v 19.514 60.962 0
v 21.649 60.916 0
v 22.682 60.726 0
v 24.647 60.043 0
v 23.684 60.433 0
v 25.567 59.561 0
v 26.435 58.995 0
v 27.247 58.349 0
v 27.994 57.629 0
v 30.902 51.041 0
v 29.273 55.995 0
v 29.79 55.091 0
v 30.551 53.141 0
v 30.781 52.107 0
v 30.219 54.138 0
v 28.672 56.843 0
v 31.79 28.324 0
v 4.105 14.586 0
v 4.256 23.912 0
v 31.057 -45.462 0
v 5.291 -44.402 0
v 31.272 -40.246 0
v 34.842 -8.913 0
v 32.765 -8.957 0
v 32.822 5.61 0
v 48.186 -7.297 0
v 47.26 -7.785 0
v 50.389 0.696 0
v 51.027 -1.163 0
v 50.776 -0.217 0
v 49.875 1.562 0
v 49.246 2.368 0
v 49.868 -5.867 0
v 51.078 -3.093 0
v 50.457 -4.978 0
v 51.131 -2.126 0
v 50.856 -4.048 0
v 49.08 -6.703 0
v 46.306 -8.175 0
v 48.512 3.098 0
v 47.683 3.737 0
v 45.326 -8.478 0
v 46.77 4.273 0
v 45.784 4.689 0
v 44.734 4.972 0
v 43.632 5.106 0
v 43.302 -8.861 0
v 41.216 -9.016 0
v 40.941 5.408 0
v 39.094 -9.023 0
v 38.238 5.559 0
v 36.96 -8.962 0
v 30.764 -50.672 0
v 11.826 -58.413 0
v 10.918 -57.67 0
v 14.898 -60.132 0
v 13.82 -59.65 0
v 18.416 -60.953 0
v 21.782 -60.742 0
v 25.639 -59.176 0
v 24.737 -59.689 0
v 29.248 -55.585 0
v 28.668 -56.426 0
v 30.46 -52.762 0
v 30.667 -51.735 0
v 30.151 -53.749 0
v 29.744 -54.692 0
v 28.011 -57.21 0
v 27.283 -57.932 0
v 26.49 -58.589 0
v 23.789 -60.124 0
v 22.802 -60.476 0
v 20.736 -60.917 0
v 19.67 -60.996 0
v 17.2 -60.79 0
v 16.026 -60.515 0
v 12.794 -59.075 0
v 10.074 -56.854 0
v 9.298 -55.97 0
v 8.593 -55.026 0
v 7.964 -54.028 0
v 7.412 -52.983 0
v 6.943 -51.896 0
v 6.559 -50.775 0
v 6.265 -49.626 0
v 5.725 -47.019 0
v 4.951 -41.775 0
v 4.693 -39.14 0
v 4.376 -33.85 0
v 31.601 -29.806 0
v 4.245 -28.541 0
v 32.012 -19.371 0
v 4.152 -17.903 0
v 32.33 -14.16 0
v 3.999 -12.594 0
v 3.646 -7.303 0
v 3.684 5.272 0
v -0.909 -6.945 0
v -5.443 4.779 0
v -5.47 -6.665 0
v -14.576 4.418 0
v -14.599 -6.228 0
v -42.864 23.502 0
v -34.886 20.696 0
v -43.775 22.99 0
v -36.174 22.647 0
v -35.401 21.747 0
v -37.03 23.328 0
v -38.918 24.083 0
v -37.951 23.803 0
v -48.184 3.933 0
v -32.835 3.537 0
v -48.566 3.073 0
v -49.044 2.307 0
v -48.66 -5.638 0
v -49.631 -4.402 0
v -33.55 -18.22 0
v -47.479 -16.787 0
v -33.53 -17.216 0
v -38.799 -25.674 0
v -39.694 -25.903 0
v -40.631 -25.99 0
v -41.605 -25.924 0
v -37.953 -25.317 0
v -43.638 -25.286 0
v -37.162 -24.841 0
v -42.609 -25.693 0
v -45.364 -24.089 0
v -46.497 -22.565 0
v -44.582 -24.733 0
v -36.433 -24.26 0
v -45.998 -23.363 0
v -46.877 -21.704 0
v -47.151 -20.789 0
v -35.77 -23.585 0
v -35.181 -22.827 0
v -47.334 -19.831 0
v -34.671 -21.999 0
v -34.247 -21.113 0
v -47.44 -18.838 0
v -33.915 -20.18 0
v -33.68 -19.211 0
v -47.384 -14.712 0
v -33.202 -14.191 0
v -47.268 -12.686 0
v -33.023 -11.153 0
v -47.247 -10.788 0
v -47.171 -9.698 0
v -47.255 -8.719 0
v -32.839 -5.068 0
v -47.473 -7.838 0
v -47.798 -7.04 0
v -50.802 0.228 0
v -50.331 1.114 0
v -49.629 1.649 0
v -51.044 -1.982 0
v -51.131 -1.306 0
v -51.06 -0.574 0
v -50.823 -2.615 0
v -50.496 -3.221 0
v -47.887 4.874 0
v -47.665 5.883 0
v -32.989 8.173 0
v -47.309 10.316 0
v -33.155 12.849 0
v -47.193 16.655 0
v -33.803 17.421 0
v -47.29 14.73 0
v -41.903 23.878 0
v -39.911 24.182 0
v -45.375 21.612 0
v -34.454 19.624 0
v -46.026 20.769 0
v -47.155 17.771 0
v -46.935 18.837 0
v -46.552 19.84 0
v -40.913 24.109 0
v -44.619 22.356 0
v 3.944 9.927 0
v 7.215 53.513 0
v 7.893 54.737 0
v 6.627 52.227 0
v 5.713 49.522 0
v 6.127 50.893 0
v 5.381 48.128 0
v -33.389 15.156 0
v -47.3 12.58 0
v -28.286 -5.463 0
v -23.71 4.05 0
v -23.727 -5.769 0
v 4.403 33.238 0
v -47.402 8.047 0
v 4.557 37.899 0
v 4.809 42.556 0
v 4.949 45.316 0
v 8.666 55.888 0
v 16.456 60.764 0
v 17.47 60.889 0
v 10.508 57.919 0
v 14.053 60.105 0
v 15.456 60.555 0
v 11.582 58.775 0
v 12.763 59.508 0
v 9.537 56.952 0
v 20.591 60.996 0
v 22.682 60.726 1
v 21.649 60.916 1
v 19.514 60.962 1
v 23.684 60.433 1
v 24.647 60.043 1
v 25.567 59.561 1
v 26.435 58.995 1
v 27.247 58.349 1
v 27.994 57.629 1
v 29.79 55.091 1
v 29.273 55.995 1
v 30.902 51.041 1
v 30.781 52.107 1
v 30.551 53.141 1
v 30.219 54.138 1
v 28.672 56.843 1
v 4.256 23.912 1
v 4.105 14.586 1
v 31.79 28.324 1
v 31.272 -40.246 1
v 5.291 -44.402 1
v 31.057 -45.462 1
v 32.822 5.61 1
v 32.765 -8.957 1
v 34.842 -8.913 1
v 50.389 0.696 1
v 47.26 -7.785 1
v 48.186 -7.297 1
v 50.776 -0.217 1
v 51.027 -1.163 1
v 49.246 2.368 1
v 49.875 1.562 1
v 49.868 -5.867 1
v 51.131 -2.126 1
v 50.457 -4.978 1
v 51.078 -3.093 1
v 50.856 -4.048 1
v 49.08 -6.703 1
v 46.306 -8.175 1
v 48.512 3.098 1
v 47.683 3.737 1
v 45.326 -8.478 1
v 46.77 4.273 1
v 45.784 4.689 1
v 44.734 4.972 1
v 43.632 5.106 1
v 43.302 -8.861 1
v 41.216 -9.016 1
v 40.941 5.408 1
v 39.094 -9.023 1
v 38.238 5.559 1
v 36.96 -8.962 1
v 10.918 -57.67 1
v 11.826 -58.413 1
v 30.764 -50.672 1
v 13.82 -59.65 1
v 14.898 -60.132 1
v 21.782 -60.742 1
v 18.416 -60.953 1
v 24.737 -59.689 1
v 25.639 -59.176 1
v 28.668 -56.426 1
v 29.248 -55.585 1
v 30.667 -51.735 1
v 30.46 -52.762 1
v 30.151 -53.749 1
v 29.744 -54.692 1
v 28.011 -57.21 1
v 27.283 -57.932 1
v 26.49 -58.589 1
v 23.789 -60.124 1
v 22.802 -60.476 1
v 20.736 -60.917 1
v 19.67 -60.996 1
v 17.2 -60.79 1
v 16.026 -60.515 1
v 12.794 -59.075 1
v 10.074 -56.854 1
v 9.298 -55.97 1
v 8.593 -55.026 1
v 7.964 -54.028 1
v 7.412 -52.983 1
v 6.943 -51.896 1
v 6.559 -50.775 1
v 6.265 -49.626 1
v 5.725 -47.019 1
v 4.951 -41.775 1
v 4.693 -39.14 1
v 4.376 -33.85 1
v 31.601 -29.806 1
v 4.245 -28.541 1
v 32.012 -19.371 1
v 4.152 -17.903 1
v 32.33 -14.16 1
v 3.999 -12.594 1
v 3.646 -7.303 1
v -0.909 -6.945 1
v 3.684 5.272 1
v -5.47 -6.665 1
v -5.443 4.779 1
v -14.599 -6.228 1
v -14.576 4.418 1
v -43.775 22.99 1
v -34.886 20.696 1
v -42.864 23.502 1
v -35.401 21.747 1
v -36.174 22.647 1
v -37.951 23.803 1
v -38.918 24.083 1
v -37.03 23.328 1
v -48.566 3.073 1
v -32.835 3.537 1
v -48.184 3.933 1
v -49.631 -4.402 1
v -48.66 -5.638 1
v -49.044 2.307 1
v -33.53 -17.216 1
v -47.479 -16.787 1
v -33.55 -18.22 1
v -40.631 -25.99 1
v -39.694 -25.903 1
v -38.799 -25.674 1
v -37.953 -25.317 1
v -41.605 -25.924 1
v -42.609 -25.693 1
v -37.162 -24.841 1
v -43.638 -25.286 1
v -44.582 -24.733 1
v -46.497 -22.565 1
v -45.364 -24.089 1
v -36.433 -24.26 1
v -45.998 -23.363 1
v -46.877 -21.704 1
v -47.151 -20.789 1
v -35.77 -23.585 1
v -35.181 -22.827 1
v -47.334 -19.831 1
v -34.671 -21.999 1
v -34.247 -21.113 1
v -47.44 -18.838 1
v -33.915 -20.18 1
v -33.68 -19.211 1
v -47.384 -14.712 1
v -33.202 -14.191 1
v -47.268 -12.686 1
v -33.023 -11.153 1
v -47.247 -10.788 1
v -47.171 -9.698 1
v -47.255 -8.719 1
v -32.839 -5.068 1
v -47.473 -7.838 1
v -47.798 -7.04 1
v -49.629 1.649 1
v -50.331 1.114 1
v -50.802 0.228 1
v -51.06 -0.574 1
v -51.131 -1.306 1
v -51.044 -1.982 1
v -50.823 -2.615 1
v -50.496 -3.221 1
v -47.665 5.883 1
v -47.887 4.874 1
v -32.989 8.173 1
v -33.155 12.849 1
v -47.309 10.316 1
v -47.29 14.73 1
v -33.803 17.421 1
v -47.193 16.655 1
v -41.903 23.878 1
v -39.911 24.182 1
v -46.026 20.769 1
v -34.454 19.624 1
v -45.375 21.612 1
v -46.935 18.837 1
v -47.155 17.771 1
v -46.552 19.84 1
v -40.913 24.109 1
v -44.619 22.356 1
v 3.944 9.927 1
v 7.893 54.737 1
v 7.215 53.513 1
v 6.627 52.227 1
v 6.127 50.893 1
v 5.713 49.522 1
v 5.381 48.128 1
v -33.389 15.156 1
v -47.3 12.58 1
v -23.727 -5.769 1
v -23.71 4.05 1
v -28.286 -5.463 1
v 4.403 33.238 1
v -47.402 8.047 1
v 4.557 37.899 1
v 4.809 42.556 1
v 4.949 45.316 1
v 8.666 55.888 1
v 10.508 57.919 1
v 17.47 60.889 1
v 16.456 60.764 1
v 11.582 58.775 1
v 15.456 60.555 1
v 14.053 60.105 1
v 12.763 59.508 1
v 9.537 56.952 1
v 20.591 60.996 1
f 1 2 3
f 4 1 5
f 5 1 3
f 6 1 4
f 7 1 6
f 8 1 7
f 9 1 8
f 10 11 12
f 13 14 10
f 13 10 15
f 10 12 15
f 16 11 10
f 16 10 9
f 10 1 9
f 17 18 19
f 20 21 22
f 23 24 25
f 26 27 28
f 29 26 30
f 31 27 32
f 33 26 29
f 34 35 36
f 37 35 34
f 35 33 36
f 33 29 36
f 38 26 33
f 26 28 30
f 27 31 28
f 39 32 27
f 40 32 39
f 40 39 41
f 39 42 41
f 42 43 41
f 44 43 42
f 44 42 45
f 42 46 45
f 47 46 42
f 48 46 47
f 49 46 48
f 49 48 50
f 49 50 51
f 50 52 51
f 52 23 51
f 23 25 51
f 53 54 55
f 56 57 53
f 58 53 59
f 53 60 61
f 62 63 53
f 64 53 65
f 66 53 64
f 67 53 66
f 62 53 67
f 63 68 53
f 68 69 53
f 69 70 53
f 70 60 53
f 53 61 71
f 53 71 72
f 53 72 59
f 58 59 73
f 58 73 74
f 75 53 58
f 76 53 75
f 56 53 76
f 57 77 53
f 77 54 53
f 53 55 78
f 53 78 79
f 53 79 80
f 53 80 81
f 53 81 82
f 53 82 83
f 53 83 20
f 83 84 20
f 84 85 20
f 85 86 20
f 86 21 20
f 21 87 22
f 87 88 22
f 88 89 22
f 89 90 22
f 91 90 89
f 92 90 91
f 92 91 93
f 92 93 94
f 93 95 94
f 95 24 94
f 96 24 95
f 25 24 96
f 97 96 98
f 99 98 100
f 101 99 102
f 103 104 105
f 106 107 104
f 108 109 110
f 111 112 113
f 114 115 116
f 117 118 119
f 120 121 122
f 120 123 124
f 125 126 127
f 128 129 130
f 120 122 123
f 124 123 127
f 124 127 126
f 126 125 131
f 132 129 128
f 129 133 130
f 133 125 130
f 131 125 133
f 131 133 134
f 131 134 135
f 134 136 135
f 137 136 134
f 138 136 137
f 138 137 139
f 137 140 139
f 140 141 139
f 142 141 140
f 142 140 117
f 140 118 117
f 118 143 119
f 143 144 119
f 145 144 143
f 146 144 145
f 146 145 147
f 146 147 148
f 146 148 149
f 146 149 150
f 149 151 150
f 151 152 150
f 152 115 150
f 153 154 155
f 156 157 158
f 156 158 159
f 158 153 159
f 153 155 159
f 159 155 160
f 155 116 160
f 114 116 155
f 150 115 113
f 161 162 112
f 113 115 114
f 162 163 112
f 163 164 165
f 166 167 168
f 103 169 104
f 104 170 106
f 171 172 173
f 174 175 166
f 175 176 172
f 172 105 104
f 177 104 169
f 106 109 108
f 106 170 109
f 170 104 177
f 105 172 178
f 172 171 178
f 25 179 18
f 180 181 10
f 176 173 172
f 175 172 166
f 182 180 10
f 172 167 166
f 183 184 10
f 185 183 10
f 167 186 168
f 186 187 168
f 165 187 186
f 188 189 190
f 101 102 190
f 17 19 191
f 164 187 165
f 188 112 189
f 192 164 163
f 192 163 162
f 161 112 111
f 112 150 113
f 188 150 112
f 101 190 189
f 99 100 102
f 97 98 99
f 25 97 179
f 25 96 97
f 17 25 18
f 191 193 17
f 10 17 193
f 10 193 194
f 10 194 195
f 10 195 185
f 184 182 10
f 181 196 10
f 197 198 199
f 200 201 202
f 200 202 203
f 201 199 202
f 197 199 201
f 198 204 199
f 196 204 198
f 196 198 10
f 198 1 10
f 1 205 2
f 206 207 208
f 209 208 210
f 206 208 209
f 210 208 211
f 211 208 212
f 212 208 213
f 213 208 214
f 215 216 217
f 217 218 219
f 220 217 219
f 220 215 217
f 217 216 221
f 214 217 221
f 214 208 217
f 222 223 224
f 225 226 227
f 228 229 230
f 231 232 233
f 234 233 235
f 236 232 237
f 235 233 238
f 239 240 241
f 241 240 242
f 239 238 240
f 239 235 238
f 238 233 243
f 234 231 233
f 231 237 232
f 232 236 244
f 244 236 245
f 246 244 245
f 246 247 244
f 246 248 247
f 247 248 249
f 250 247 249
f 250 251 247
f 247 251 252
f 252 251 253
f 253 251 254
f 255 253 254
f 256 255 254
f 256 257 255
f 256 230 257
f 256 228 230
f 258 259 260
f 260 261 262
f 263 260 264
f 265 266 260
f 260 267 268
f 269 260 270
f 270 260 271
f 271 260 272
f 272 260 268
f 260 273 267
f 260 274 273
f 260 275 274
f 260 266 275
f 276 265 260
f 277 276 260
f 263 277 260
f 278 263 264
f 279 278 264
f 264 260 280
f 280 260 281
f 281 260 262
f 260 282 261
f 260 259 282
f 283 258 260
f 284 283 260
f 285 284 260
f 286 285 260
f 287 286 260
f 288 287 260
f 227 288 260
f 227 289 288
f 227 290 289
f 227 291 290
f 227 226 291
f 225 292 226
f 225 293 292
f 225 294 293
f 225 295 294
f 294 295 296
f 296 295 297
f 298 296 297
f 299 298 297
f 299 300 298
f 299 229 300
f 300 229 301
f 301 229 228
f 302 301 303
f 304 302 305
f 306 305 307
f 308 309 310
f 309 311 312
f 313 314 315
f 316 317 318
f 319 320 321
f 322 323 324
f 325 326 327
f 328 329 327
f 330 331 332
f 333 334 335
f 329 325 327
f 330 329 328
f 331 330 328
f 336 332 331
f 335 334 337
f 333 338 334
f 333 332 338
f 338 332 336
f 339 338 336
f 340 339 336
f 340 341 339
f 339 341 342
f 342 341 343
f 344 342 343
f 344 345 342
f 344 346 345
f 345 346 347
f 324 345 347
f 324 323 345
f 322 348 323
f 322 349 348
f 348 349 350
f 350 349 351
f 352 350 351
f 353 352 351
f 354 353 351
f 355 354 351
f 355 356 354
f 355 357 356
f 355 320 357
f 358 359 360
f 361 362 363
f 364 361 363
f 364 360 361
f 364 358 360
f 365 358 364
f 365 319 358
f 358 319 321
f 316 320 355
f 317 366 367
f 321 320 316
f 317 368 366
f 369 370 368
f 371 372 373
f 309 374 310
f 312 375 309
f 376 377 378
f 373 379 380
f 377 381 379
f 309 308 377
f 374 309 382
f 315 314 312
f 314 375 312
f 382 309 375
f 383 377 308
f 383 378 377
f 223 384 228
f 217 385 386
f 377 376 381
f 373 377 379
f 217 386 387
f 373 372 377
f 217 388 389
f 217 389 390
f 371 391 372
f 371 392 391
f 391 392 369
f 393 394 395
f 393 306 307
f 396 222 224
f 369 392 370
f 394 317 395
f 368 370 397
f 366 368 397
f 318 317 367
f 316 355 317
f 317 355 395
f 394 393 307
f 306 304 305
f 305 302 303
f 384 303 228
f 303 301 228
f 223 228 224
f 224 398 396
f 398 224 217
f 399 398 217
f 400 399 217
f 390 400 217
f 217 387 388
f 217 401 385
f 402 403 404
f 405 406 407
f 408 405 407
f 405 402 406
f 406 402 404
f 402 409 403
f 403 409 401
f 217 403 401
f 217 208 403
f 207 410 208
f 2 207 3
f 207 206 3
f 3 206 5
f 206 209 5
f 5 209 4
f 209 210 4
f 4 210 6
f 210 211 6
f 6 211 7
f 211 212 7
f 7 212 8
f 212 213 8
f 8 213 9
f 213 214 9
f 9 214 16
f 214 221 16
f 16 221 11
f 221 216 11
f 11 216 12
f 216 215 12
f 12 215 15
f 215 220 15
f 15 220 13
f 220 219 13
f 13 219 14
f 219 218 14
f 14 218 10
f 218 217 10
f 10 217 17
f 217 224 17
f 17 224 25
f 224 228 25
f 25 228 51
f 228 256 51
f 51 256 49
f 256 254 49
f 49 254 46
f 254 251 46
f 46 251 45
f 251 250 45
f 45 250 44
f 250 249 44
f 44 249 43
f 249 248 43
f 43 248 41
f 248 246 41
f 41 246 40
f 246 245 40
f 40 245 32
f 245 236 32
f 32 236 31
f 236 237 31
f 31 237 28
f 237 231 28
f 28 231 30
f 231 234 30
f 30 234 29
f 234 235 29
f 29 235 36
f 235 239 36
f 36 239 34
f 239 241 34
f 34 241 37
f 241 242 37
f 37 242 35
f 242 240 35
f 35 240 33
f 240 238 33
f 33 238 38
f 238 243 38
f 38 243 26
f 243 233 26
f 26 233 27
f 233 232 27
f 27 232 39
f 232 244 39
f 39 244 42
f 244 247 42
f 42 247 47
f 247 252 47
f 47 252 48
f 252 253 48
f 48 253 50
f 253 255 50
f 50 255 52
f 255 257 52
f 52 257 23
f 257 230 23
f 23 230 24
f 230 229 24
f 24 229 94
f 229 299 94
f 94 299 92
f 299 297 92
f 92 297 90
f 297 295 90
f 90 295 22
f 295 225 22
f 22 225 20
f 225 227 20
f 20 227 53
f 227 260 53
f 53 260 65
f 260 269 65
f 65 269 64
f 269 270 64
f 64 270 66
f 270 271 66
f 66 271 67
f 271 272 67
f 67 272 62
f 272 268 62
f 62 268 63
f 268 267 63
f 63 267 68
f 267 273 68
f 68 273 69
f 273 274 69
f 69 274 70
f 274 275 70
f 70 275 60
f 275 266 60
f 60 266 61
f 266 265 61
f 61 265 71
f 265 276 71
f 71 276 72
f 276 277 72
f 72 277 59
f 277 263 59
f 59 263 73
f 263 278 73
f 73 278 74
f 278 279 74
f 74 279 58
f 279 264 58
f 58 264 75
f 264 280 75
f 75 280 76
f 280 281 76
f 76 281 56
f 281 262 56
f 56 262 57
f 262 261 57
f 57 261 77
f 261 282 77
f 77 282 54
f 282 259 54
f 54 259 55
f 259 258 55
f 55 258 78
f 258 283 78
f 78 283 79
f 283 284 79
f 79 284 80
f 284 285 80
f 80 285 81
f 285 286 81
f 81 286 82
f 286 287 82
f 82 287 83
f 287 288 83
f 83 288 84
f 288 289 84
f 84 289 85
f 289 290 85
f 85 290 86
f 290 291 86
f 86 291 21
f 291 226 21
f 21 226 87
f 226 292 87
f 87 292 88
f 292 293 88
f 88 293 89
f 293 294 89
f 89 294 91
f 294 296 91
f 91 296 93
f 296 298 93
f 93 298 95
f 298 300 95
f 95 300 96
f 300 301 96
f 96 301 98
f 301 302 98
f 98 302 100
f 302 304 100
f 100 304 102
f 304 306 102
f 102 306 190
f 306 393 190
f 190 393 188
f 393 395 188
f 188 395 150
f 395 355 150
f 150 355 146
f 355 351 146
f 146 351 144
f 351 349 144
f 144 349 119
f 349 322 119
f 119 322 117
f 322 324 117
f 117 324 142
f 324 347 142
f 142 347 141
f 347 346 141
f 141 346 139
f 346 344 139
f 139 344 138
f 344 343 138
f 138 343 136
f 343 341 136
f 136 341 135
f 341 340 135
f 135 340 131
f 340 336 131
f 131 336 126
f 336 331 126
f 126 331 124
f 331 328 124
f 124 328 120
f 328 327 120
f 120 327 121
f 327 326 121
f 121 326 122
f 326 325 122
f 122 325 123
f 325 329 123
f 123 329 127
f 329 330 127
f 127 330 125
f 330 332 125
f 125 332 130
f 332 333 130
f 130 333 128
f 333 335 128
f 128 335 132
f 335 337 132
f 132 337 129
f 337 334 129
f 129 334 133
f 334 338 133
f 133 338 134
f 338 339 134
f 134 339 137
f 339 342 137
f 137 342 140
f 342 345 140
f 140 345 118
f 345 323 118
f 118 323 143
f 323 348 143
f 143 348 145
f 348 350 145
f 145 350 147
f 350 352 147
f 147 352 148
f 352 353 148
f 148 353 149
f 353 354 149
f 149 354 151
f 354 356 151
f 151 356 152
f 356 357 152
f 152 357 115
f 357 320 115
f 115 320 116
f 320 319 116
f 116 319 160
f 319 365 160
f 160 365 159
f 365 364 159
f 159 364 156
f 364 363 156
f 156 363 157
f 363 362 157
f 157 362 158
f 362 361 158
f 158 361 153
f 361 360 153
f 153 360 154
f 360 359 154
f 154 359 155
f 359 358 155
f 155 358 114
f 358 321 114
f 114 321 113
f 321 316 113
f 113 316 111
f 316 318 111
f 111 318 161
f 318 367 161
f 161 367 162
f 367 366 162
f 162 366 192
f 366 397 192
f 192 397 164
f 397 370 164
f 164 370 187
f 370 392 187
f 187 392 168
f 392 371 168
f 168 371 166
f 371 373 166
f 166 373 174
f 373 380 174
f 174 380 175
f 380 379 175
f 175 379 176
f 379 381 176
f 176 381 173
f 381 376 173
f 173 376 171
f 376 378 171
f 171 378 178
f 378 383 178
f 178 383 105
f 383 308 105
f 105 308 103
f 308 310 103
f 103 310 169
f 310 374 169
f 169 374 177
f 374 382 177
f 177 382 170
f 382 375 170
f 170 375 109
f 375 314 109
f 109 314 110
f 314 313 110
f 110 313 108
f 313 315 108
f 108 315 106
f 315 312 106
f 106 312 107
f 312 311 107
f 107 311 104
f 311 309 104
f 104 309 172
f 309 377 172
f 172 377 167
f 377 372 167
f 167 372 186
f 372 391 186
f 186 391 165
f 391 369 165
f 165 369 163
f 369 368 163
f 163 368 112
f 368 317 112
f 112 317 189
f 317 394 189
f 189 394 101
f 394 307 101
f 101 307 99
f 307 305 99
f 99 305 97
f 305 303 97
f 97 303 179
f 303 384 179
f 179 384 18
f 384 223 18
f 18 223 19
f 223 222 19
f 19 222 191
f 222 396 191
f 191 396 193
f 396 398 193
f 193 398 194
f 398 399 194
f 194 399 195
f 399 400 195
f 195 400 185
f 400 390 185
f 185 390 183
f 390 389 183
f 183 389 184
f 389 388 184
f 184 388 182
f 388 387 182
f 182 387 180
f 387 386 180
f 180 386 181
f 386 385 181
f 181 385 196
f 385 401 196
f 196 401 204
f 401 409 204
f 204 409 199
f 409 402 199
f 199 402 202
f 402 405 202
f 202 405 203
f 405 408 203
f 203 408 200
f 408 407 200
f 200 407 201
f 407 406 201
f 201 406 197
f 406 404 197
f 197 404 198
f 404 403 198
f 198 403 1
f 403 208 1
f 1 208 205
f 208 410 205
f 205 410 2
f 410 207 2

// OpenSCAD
// Module names are of the form poly_<inkscape-path-id>().
// As a result you can associate a polygon in this OpenSCAD program with the
//  corresponding SVG element in the Inkscape document by looking for 
//  the XML element with the attribute id="inkscape-path-id".

// Paths have their own variables so they can be imported and used 
//  in polygon(points) structures in other programs.
// The NN_points is the list of all polygon XY vertices. 
// There may be an NN_paths variable as well. If it exists then it 
//  defines the nested paths. Both must be used in the 
//  polygon(points, paths) variant of the command.

profile_scale = 25.4/90; //made in inkscape in mm

// helper functions to determine the X,Y dimensions of the profiles
function min_x(shape_points) = min([ for (x = shape_points) min(x[0])]);
function max_x(shape_points) = max([ for (x = shape_points) max(x[0])]);
function min_y(shape_points) = min([ for (x = shape_points) min(x[1])]);
function max_y(shape_points) = max([ for (x = shape_points) max(x[1])]);

height = 1;
width = 1.0;


path3761_0_points = [[54.766010,-214.564436],[49.794249,-212.970618],[45.221830,-210.853383],[41.037860,-208.256543],[37.231446,-205.223909],[33.791694,-201.799294],[30.707711,-198.026510],[27.968605,-193.949368],[25.563480,-189.611680],[23.481445,-185.057259],[21.711606,-180.329917],[20.243070,-175.473464],[19.064943,-170.531715],[17.536343,-160.567571],[17.038660,-150.787980],[16.146677,-134.287554],[15.600960,-117.774051],[15.080903,-84.726415],[14.543652,-51.682269],[13.976443,-35.173130],[13.054370,-18.678813],[-19.285583,-16.932899],[-51.648556,-15.653859],[-84.010128,-14.350978],[-116.345880,-12.533543],[-116.891667,-28.960884],[-117.479318,-45.526899],[-118.308869,-53.704246],[-119.772918,-61.727066],[-122.079474,-69.532293],[-123.613697,-73.333602],[-125.436550,-77.056863],[-128.173892,-80.244553],[-131.207787,-82.658439],[-134.471089,-84.341040],[-137.896651,-85.334873],[-141.417327,-85.682457],[-144.965971,-85.426310],[-148.475436,-84.608950],[-151.878576,-83.272896],[-155.108244,-81.460666],[-158.097294,-79.214779],[-160.778580,-76.577752],[-163.084954,-73.592103],[-164.949271,-70.300352],[-166.304384,-66.745016],[-167.083147,-62.968613],[-167.218414,-59.013663],[-167.562385,-52.191756],[-167.598178,-44.575575],[-167.629328,-36.553494],[-167.959370,-28.513885],[-168.891837,-20.845123],[-169.678836,-17.271175],[-170.730266,-13.935579],[-172.084071,-10.886881],[-173.778191,-8.173628],[-175.850568,-5.844366],[-178.339146,-3.947643],[-180.005984,-0.807865],[-180.919332,2.034063],[-181.173511,4.627566],[-180.862841,7.022069],[-180.081641,9.267000],[-178.924232,11.411783],[-175.858068,15.598611],[-172.418909,19.977960],[-169.361316,24.945236],[-168.211407,27.772911],[-167.439849,30.895846],[-167.140964,34.363466],[-167.409072,38.225197],[-167.484814,44.952314],[-167.895234,52.127279],[-168.233815,59.482498],[-168.094043,66.750381],[-167.717738,70.267949],[-167.069401,73.663335],[-166.098217,76.903092],[-164.753373,79.953769],[-162.984054,82.781918],[-160.739444,85.354090],[-157.968731,87.636836],[-154.621099,89.596707],[-150.977046,91.039595],[-147.418895,91.856777],[-143.968399,92.090049],[-140.647307,91.781205],[-137.477373,90.972040],[-134.480348,89.704349],[-131.677982,88.019926],[-129.092028,85.960566],[-126.744237,83.568064],[-124.656360,80.884215],[-122.850150,77.950813],[-121.347356,74.809652],[-120.169732,71.502529],[-119.339029,68.071237],[-118.876997,64.557572],[-118.805390,61.003327],[-117.644873,50.281995],[-117.009276,39.519872],[-116.359320,17.958177],[-100.225935,19.356414],[-84.072327,20.442012],[-51.729723,22.067124],[-19.382063,23.617185],[-3.222134,24.608969],[12.920100,25.875867],[14.168008,44.623206],[14.710579,63.436541],[15.040087,101.128155],[15.507212,119.939910],[16.629379,138.684615],[17.542382,148.021430],[18.746680,157.329008],[20.284786,166.603193],[22.199210,175.839827],[23.241443,179.911119],[24.600405,183.883542],[26.263267,187.733907],[28.217201,191.439021],[30.449379,194.975693],[32.946973,198.320730],[35.697155,201.450941],[38.687097,204.343135],[41.903969,206.974119],[45.334945,209.320703],[48.967196,211.359693],[52.787894,213.067900],[56.784211,214.422130],[60.943318,215.399193],[65.252387,215.975896],[69.698590,216.129047],[73.474522,215.847042],[77.180245,215.227930],[80.793113,214.286682],[84.290481,213.038266],[87.649705,211.497655],[90.848139,209.679817],[93.863138,207.599724],[96.672058,205.272346],[99.252253,202.712653],[101.581077,199.935615],[103.635887,196.956203],[105.394036,193.789387],[106.832880,190.450137],[107.929774,186.953423],[108.662072,183.314217],[109.007130,179.547487],[110.044433,161.085662],[110.807468,142.604016],[111.972978,105.612742],[113.428141,68.636626],[114.553244,50.173927],[116.097440,31.738627],[123.455733,31.582275],[130.960877,31.754962],[138.520539,31.971839],[146.042389,31.948055],[153.434095,31.398760],[160.603325,30.039104],[164.075658,28.966375],[167.457747,27.584236],[170.738052,25.857083],[173.905030,23.749307],[176.697339,20.790260],[178.783212,17.637936],[180.199779,14.343577],[180.984169,10.958425],[181.173511,7.533721],[180.804935,4.120706],[179.915569,0.770622],[178.542544,-2.465290],[176.722989,-5.535789],[174.494032,-8.389634],[171.892803,-10.975583],[168.956432,-13.242394],[165.722048,-15.138827],[162.226780,-16.613641],[158.507758,-17.615593],[154.602110,-18.093443],[145.065150,-19.161769],[135.489312,-19.697275],[116.298580,-19.876783],[112.643395,-100.359405],[109.494640,-180.855089],[109.065913,-184.631500],[108.251434,-188.295927],[107.074058,-191.827241],[105.556643,-195.204312],[103.722042,-198.406011],[101.593113,-201.411208],[99.192712,-204.198773],[96.543693,-206.747579],[93.668913,-209.036494],[90.591229,-211.044390],[87.333494,-212.750137],[83.918567,-214.132605],[80.369302,-215.170666],[76.708555,-215.843190],[72.959183,-216.129047],[69.144040,-216.007109],[61.903418,-215.747798],[58.309292,-215.305349],[54.766010,-214.564436],[54.766010,-214.564436]];

module poly_path3761(h, w, res=4)  {
  scale([profile_scale, -profile_scale, 1])
  union()  {
    linear_extrude(height=h)
      polygon(path3761_0_points);
  }
}

// The shapes
poly_path3761(height, width);
